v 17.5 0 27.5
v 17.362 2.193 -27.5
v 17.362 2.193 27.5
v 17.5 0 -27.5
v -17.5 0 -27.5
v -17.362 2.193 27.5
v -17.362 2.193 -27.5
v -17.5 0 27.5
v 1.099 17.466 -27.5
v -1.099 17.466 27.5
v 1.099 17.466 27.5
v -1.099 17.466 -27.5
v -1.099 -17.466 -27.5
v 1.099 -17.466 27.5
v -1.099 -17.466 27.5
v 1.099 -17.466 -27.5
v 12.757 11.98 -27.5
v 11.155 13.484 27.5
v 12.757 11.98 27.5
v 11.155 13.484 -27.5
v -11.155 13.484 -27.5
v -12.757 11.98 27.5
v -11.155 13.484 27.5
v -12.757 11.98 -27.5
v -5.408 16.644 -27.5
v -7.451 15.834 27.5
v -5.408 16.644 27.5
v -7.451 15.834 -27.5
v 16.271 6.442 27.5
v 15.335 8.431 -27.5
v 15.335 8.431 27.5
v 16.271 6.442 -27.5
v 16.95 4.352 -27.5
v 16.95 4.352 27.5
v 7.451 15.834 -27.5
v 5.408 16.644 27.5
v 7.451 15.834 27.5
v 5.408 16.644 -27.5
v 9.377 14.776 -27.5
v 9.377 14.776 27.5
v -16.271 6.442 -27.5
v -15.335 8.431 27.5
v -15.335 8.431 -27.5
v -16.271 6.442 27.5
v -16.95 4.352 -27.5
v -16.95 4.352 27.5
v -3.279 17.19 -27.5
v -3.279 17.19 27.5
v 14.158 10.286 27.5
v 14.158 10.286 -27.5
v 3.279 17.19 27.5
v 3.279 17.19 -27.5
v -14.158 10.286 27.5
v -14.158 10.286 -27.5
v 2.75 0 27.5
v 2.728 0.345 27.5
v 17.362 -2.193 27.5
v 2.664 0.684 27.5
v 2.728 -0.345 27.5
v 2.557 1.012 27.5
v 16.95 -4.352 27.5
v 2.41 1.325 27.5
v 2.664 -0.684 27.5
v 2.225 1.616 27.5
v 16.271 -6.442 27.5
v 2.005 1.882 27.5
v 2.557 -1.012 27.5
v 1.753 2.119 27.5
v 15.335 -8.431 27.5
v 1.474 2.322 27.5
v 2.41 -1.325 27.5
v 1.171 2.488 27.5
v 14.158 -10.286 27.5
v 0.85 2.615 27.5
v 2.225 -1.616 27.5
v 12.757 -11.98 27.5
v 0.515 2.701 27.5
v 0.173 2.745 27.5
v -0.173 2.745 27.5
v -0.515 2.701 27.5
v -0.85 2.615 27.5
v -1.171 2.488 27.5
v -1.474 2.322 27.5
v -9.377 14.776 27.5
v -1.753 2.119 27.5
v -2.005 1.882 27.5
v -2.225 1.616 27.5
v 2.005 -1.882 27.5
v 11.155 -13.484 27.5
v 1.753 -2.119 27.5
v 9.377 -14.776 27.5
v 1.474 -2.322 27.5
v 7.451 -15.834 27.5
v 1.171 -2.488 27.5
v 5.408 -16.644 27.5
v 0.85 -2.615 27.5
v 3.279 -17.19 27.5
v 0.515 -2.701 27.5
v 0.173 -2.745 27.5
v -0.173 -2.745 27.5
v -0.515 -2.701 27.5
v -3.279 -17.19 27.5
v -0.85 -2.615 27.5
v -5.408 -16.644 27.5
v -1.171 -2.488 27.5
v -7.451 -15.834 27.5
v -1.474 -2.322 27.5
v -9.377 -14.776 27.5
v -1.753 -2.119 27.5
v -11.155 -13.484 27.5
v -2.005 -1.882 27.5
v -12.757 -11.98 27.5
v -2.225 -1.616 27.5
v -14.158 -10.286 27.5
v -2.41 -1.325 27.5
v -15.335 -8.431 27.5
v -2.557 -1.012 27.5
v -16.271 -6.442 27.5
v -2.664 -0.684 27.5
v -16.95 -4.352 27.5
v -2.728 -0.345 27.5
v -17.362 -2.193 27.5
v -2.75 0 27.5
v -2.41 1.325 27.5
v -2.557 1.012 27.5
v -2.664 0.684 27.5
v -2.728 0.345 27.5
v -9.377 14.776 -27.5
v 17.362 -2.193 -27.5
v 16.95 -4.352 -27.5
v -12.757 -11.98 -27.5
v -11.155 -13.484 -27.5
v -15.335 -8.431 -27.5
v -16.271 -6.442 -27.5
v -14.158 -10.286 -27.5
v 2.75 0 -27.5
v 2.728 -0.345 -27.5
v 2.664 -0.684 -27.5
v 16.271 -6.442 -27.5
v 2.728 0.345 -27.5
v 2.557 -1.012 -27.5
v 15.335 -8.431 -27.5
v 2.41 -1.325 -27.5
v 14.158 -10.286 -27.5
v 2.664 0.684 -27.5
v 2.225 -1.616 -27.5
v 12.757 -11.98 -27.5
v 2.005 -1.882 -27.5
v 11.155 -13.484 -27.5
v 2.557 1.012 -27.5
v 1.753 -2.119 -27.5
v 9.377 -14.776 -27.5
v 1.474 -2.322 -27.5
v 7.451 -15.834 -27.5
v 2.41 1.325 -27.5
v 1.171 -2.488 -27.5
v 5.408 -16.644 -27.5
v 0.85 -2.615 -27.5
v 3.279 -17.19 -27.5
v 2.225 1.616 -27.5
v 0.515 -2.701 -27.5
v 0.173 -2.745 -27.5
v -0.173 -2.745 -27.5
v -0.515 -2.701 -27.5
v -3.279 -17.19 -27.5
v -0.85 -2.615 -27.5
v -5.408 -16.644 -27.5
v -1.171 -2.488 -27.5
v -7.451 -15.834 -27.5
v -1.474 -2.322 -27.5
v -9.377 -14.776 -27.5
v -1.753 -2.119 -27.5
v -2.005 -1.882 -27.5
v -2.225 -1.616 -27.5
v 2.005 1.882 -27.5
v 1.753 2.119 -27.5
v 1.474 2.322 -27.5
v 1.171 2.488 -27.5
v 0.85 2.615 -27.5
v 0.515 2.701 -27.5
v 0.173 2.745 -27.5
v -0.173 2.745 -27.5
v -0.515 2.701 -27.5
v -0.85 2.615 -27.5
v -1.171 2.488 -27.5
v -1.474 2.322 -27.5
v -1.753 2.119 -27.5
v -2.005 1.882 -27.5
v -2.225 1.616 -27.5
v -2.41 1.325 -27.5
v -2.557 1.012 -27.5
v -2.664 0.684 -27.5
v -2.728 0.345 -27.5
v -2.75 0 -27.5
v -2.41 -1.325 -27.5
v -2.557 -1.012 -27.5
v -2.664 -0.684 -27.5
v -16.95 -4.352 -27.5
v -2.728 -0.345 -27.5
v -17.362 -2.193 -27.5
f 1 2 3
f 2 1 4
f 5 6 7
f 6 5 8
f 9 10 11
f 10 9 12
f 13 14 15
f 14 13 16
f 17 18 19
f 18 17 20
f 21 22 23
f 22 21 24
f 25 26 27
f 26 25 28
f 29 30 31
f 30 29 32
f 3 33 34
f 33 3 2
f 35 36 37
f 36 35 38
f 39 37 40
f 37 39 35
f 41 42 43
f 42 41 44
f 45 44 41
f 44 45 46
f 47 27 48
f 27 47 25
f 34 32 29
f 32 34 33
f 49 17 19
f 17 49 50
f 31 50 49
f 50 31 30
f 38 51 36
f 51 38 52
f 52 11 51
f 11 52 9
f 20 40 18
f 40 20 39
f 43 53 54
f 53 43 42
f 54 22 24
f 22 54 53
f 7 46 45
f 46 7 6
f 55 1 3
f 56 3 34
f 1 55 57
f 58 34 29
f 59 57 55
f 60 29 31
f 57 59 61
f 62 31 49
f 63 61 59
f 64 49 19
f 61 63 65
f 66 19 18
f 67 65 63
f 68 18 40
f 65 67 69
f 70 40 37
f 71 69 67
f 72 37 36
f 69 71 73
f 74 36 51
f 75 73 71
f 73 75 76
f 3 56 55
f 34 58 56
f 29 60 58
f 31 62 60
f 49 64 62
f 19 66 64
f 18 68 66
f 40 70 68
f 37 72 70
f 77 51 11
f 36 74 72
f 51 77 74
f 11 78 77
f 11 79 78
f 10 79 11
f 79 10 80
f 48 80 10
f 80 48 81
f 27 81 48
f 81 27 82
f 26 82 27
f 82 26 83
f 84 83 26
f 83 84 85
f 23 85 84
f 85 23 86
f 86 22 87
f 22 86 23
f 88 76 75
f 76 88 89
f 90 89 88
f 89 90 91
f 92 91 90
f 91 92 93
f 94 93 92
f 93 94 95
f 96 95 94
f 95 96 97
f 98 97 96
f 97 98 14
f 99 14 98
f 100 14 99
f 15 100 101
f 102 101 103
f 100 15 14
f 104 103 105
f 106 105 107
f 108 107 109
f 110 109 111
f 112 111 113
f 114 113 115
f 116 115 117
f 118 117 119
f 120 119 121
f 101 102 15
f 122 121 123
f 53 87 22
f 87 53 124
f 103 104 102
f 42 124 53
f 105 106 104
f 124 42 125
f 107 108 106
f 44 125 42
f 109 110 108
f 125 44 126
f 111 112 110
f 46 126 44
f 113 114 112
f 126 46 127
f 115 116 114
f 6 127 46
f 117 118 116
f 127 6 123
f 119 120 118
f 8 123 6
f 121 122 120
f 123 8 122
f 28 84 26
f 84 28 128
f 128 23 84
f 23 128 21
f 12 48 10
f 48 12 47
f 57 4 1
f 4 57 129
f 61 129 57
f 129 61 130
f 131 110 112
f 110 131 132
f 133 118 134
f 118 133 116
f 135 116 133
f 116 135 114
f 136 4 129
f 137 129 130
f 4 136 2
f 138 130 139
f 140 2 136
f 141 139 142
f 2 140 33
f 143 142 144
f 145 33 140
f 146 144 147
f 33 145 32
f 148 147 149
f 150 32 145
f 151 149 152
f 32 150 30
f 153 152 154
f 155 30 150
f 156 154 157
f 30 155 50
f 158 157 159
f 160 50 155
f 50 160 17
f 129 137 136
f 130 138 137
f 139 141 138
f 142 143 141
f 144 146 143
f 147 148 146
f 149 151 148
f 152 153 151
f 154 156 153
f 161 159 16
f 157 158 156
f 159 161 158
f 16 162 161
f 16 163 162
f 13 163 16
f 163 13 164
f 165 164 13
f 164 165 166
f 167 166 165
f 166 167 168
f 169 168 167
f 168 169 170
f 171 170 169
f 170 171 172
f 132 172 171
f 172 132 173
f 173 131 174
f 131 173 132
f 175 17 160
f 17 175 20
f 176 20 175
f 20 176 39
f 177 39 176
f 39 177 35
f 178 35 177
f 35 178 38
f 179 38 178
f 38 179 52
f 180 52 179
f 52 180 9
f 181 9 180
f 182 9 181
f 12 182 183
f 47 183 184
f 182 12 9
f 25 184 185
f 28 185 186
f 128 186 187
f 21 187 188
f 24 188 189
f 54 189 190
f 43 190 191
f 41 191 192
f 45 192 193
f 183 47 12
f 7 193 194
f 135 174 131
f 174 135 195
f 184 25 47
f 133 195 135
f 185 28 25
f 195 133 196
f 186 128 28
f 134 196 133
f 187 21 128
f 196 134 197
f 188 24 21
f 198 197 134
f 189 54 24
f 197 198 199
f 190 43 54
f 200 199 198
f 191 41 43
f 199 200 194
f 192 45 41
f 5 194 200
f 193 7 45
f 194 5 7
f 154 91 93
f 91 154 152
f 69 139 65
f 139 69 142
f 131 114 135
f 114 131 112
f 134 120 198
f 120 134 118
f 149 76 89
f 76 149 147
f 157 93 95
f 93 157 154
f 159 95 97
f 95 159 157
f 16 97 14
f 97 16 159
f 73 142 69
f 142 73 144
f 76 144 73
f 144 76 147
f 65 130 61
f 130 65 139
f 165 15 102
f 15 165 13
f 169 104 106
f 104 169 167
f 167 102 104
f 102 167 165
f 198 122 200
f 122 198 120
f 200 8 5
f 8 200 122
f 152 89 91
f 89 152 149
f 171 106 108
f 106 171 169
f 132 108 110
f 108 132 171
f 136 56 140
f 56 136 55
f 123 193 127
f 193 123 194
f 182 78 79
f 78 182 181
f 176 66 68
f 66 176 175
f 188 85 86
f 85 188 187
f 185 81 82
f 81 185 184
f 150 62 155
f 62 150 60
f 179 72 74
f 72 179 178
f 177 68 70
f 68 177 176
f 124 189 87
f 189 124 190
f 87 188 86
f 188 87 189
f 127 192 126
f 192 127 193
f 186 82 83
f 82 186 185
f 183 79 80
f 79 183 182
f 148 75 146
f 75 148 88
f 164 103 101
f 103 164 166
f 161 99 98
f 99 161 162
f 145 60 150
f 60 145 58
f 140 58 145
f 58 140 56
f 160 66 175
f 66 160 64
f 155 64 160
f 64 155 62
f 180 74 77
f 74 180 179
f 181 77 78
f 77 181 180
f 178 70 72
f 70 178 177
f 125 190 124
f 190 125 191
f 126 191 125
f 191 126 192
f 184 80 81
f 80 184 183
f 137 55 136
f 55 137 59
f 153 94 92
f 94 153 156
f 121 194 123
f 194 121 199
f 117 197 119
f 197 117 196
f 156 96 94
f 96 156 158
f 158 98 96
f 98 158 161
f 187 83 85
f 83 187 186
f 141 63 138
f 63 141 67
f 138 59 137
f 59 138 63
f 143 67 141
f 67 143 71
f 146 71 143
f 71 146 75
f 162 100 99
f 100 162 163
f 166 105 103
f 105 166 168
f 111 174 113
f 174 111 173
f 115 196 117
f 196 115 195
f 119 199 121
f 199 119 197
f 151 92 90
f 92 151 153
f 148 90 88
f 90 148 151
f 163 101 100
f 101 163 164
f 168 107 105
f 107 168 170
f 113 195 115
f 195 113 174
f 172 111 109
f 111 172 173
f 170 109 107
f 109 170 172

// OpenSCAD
$fn = 50;


difference() {
	union() {
		translate(v = [0, 0, -27.5000000000]) {
			cylinder(h = 55, r = 17.5000000000);
		}
	}
	union() {
		translate(v = [0, 0, -100.0000000000]) {
			cylinder(h = 200, r = 2.7500000000);
		}
	}
}
